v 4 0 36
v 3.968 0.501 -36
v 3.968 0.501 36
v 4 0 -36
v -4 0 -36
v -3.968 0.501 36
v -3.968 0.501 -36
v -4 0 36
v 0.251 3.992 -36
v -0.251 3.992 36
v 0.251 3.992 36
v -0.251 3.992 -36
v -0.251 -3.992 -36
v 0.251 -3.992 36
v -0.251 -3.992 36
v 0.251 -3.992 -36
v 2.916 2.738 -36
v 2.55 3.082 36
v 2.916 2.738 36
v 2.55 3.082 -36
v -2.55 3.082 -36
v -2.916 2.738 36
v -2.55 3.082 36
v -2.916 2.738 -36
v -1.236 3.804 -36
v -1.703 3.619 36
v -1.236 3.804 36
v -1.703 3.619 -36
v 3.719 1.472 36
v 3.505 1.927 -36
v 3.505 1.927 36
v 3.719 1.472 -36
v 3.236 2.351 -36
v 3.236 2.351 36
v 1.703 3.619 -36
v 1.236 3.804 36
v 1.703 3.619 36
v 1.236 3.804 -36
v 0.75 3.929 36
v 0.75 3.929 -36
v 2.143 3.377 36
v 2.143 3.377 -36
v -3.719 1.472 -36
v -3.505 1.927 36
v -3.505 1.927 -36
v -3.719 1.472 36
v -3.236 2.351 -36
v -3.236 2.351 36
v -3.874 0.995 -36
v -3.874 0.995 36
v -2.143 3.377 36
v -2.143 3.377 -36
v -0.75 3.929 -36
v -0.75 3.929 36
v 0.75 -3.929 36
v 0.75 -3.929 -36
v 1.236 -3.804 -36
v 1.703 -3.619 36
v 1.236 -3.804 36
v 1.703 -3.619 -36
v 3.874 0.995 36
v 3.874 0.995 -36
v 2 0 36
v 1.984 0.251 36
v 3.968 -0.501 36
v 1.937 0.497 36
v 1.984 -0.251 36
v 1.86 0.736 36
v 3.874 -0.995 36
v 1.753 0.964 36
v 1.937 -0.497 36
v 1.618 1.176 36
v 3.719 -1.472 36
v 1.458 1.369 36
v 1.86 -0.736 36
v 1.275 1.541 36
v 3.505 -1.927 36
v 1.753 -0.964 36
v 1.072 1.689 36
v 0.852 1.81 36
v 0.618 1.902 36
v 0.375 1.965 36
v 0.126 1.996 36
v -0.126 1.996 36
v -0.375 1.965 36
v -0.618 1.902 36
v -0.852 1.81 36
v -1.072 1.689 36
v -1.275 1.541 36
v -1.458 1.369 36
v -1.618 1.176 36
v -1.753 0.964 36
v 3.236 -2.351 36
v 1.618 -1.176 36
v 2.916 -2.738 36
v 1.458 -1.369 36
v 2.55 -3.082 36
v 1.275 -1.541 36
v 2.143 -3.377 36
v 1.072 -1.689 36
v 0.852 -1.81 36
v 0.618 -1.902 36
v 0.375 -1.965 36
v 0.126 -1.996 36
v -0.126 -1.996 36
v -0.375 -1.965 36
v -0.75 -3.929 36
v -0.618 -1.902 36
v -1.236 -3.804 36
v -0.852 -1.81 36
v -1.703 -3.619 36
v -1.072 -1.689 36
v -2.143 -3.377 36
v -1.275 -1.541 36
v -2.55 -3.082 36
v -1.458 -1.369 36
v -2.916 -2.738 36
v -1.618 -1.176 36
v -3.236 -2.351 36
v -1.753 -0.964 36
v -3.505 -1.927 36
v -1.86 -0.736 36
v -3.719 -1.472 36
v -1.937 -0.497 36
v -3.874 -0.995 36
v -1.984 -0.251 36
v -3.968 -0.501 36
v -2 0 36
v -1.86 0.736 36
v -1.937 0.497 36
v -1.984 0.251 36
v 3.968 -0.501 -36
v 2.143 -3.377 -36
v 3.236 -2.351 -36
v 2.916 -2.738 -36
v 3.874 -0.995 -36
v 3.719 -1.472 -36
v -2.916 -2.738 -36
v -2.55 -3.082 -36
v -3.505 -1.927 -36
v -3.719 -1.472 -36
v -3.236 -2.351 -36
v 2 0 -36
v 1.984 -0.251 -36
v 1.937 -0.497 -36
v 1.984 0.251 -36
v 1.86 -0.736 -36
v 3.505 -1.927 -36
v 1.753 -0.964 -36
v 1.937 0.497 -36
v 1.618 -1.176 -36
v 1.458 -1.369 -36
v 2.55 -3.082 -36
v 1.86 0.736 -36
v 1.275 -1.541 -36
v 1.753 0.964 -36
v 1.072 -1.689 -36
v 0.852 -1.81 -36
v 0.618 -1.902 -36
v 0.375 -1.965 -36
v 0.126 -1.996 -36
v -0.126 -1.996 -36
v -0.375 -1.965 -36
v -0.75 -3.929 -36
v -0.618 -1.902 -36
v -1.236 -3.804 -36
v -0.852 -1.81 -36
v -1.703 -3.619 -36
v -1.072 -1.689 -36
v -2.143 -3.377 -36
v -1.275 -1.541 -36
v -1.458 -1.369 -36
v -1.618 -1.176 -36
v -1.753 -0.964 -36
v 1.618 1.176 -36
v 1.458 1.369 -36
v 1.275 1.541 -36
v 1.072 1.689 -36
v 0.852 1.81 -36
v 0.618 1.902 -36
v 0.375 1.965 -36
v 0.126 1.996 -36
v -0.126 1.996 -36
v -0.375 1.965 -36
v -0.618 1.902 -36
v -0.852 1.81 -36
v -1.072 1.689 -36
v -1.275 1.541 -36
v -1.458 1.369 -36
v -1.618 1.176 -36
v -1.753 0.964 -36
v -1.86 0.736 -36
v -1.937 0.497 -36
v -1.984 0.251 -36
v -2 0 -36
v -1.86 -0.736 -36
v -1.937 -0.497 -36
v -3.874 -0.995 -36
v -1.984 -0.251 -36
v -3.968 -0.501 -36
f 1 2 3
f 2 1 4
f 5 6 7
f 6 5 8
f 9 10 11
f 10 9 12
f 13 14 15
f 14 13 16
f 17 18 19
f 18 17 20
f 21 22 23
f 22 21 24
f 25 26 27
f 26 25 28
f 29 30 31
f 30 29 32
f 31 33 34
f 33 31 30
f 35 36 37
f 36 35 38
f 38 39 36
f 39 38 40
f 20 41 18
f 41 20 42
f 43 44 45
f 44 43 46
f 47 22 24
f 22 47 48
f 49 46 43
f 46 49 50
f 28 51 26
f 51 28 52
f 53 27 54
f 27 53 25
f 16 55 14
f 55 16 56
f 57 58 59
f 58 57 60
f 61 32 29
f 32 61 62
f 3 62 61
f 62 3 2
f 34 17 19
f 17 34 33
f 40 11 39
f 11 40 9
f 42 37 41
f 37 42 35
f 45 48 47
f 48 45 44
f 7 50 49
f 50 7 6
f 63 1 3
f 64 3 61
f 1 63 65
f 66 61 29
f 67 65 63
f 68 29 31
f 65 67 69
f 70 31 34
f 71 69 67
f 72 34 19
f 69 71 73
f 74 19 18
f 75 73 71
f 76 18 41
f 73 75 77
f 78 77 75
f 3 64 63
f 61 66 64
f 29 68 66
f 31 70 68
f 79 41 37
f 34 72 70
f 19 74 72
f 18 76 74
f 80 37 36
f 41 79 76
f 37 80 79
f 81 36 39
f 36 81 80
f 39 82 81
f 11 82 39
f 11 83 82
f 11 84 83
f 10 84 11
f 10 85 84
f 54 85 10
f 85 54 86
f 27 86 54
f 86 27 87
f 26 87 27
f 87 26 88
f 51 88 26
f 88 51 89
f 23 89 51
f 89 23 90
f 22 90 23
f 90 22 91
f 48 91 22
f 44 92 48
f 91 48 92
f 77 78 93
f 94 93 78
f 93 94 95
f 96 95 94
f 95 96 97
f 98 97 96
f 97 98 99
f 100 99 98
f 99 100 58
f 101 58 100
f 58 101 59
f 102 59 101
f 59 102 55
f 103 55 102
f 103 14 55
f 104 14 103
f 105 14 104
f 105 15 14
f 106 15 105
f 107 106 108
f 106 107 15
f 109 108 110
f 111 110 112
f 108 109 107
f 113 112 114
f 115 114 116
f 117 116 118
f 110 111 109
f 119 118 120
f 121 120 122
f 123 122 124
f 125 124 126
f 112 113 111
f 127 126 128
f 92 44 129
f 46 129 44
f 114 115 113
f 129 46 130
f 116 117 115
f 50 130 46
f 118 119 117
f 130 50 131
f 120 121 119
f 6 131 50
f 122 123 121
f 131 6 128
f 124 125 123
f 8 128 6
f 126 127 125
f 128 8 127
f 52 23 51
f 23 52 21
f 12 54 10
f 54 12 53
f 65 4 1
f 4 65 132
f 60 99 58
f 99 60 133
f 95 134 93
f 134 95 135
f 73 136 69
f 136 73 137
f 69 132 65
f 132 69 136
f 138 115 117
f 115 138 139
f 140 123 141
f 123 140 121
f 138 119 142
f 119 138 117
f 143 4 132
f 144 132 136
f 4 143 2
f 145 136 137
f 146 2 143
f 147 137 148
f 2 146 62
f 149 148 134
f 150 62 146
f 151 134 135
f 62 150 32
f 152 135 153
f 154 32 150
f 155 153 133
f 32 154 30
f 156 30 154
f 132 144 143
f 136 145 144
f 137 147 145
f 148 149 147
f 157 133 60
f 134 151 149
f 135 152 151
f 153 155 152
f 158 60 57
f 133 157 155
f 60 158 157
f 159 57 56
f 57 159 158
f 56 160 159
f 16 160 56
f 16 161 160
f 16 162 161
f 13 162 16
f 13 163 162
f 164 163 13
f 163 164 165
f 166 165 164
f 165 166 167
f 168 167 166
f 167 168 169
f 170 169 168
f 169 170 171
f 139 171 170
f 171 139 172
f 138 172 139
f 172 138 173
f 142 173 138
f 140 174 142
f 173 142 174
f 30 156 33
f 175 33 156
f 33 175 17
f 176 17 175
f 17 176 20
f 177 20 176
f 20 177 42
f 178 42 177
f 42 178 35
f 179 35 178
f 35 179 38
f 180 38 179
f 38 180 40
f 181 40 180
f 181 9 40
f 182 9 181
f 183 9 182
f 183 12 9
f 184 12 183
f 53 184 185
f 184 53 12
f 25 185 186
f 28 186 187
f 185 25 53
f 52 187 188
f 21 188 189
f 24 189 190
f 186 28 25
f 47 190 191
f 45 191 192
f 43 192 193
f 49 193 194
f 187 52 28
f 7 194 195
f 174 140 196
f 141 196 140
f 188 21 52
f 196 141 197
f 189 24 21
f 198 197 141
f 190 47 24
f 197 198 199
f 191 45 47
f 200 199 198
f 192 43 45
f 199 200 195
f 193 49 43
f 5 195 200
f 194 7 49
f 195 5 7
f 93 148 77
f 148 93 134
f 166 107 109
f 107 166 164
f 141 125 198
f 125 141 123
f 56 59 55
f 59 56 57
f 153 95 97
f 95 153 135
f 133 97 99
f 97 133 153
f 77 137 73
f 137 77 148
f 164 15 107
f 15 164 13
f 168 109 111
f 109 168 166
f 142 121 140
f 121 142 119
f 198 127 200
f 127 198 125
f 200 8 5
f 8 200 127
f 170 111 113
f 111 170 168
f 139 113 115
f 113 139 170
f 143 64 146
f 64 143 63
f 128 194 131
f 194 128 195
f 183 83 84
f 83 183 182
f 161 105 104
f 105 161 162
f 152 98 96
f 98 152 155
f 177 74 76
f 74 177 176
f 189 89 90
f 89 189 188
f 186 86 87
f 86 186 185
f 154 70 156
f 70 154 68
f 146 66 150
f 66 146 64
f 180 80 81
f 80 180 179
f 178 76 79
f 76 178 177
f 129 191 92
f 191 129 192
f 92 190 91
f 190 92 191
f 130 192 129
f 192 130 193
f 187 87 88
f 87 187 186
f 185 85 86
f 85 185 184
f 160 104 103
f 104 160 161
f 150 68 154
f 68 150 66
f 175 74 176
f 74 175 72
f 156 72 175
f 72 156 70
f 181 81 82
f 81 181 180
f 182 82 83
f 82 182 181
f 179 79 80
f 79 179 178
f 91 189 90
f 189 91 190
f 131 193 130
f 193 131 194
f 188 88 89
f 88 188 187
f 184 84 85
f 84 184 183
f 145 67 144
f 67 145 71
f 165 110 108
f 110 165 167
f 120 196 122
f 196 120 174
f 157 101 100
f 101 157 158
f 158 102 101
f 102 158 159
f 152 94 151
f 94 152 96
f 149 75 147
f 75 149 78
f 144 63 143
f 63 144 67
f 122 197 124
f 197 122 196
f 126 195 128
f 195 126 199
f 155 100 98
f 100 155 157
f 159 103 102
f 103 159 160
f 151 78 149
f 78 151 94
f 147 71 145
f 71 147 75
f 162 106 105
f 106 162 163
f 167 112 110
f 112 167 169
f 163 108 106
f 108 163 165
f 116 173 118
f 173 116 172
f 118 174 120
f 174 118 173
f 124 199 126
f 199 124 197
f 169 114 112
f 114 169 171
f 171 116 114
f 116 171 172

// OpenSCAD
$fn = 50;


difference() {
	union() {
		translate(v = [0, 0, -36.0000000000]) {
			cylinder(h = 72, r = 4.0000000000);
		}
	}
	union() {
		translate(v = [0, 0, -100.0000000000]) {
			cylinder(h = 200, r = 2);
		}
	}
}
